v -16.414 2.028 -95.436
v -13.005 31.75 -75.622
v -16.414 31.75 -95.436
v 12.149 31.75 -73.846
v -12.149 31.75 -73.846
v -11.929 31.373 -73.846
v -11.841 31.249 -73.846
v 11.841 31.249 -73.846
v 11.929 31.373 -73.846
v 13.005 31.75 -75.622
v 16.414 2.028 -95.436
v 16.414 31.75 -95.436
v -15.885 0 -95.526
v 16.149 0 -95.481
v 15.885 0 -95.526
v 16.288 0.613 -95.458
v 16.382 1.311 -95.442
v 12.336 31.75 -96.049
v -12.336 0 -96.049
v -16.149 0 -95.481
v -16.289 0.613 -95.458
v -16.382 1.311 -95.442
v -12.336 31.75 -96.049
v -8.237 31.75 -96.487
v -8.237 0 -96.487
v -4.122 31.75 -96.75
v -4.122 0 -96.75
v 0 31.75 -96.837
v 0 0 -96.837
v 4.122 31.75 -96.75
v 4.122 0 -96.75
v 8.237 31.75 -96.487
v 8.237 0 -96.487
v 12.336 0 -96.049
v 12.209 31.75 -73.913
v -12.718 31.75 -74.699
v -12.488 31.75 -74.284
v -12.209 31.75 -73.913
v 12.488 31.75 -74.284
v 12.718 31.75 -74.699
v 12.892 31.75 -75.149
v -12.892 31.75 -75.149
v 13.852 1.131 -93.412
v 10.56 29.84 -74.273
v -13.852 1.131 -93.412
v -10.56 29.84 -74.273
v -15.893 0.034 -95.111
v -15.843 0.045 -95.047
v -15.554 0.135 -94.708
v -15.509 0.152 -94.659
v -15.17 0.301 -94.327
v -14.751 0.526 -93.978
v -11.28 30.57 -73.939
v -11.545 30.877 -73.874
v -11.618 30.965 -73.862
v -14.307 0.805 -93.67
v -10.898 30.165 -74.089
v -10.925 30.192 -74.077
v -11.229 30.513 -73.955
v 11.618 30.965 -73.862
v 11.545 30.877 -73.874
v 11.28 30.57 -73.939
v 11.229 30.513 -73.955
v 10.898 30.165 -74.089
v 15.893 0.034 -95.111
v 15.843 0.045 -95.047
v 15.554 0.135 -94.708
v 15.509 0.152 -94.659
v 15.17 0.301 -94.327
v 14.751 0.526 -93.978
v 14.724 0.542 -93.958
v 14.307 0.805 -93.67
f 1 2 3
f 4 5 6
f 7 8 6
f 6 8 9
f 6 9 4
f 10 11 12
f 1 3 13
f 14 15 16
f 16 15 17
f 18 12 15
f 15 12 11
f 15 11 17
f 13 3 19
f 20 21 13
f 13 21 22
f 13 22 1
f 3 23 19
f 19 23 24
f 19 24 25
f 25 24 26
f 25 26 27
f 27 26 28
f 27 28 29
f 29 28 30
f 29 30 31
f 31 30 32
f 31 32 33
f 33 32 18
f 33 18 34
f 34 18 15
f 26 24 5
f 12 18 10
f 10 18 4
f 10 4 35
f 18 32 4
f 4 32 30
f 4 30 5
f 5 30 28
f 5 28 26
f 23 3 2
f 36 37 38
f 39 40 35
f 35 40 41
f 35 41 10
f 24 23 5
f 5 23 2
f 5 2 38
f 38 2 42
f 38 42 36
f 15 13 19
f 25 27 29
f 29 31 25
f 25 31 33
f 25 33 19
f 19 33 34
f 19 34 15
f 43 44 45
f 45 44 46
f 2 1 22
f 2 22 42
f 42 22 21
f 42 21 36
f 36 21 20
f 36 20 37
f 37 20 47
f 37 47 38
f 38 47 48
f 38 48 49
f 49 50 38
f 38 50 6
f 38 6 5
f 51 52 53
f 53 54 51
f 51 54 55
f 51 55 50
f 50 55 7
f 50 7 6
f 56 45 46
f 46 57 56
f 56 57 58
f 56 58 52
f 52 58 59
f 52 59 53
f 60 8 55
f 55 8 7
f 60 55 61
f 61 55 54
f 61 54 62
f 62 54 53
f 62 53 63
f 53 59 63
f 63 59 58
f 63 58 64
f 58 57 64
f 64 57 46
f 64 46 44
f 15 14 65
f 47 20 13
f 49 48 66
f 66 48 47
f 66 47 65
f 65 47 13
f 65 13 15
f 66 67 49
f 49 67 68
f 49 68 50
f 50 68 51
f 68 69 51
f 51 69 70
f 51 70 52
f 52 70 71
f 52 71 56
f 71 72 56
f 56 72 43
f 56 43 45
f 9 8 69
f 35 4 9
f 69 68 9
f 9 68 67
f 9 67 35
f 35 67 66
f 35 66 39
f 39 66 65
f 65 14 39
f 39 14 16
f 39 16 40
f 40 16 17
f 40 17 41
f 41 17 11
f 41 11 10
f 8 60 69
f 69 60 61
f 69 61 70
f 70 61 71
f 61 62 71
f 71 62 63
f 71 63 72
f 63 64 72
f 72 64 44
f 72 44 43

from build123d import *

# Parameters (mm, degrees)
BOSS_EXTRUDE1_DEPTH     = 31.75
CUT_EXTRUDE1_DEPTH      = 104.222934041
CUT_EXTRUDE1_DEPTH_BACK = 104.222934041
FILLET1_R               = 2.54


with BuildPart() as part:
    # Sketch1 → Boss-Extrude1 (new body)
    with BuildSketch(Plane(origin=(0, 0, 0), x_dir=(1, 0, 0), z_dir=(0, 1, 0))):
        with BuildLine():
            Line((-12.7, 73.846320133), (12.7, 73.846320133))
            Line((12.7, 73.846320133), (16.413720047, 95.436320133))
            ThreePointArc((16.413720047, 95.436320133), (0, 96.8375), (-16.413720047, 95.436320133))
            Line((-16.413720047, 95.436320133), (-12.7, 73.846320133))
        make_face()
    extrude(amount=BOSS_EXTRUDE1_DEPTH)

    # Sketch2 → Cut-Extrude1 (cut, two sides: drawn at the far end of the back side and taken through both)
    with BuildSketch(Plane(origin=(0, 0, 0), x_dir=(0, 0, -1), z_dir=(1, 0, 0)).offset(-CUT_EXTRUDE1_DEPTH_BACK)):
        Polygon((73.846320133, 30.48), (94.166320133, 0), (73.846320133, 0), align=None)
    extrude(amount=CUT_EXTRUDE1_DEPTH + CUT_EXTRUDE1_DEPTH_BACK, mode=Mode.SUBTRACT)

    # Fillet1
    # the kernel refuses this fillet: 2.54 mm, written as the material it takes off along each edge
    with BuildSketch(Plane(origin=(12.176698441, 35.043381397, -70.804065868), x_dir=(-0.9954788736987198, -0.07903081588642236, -0.05268721059094609), z_dir=(0.09498321967341544, -0.8282884898681249, -0.5521923265787502))) as fillet1_piece_1:
        with BuildLine():
            CenterArc((FILLET1_R * 0.867623718674, FILLET1_R), FILLET1_R, 188.108634364, 81.891365636)
            Line((-FILLET1_R * 0.122378694256, FILLET1_R * 0.858949575003), (0, 0))
            Line((0, 0), (FILLET1_R * 0.867623718674, 0))
        make_face()
    extrude(amount=47.817594086, mode=Mode.SUBTRACT)
    with BuildSketch(Plane(origin=(-16.718567485, -4.563381397, -97.208574398), x_dir=(-0.14041271821062315, 0.5603018628846251, -0.8163002456282387), z_dir=(0.09498321967341593, 0.8282884898681249, 0.5521923265787501))) as fillet1_piece_2:
        with BuildLine():
            CenterArc((FILLET1_R * 0.867623718674, -FILLET1_R), FILLET1_R, 90, 81.891365636)
            Line((-FILLET1_R * 0.122378694256, -FILLET1_R * 0.858949575003), (0, 0))
            Line((0, 0), (FILLET1_R * 0.867623718674, 0))
        make_face()
    extrude(amount=47.817594086, mode=Mode.SUBTRACT)
    with BuildSketch(Plane(origin=(19.593682793, 0, -94.166320133), x_dir=(0, 0, -1), z_dir=(-1, 0, 0))) as fillet1_piece_3:
        with BuildLine():
            CenterArc((FILLET1_R * 0.535183758488, -FILLET1_R), FILLET1_R, 90, 56.309932474)
            Line((-FILLET1_R * 0.29686653585, -FILLET1_R * 0.445299803775), (0, 0))
            Line((0, 0), (FILLET1_R * 0.535183758488, 0))
        make_face()
    extrude(amount=39.187365585, mode=Mode.SUBTRACT)
    with BuildSketch(Plane(origin=(-14.6226253, 30.48, -73.846320133), x_dir=(0, -0.8320502943378437, -0.5547001962252291), z_dir=(1, 0, 0))) as fillet1_piece_4:
        with BuildLine():
            CenterArc((FILLET1_R * 0.302775637732, FILLET1_R), FILLET1_R, 236.309932474, 33.690067526)
            Line((-FILLET1_R * 0.251924558493, FILLET1_R * 0.167949705662), (0, 0))
            Line((0, 0), (FILLET1_R * 0.302775637732, 0))
        make_face()
    extrude(amount=29.245250599, mode=Mode.SUBTRACT)


solid = part.part
